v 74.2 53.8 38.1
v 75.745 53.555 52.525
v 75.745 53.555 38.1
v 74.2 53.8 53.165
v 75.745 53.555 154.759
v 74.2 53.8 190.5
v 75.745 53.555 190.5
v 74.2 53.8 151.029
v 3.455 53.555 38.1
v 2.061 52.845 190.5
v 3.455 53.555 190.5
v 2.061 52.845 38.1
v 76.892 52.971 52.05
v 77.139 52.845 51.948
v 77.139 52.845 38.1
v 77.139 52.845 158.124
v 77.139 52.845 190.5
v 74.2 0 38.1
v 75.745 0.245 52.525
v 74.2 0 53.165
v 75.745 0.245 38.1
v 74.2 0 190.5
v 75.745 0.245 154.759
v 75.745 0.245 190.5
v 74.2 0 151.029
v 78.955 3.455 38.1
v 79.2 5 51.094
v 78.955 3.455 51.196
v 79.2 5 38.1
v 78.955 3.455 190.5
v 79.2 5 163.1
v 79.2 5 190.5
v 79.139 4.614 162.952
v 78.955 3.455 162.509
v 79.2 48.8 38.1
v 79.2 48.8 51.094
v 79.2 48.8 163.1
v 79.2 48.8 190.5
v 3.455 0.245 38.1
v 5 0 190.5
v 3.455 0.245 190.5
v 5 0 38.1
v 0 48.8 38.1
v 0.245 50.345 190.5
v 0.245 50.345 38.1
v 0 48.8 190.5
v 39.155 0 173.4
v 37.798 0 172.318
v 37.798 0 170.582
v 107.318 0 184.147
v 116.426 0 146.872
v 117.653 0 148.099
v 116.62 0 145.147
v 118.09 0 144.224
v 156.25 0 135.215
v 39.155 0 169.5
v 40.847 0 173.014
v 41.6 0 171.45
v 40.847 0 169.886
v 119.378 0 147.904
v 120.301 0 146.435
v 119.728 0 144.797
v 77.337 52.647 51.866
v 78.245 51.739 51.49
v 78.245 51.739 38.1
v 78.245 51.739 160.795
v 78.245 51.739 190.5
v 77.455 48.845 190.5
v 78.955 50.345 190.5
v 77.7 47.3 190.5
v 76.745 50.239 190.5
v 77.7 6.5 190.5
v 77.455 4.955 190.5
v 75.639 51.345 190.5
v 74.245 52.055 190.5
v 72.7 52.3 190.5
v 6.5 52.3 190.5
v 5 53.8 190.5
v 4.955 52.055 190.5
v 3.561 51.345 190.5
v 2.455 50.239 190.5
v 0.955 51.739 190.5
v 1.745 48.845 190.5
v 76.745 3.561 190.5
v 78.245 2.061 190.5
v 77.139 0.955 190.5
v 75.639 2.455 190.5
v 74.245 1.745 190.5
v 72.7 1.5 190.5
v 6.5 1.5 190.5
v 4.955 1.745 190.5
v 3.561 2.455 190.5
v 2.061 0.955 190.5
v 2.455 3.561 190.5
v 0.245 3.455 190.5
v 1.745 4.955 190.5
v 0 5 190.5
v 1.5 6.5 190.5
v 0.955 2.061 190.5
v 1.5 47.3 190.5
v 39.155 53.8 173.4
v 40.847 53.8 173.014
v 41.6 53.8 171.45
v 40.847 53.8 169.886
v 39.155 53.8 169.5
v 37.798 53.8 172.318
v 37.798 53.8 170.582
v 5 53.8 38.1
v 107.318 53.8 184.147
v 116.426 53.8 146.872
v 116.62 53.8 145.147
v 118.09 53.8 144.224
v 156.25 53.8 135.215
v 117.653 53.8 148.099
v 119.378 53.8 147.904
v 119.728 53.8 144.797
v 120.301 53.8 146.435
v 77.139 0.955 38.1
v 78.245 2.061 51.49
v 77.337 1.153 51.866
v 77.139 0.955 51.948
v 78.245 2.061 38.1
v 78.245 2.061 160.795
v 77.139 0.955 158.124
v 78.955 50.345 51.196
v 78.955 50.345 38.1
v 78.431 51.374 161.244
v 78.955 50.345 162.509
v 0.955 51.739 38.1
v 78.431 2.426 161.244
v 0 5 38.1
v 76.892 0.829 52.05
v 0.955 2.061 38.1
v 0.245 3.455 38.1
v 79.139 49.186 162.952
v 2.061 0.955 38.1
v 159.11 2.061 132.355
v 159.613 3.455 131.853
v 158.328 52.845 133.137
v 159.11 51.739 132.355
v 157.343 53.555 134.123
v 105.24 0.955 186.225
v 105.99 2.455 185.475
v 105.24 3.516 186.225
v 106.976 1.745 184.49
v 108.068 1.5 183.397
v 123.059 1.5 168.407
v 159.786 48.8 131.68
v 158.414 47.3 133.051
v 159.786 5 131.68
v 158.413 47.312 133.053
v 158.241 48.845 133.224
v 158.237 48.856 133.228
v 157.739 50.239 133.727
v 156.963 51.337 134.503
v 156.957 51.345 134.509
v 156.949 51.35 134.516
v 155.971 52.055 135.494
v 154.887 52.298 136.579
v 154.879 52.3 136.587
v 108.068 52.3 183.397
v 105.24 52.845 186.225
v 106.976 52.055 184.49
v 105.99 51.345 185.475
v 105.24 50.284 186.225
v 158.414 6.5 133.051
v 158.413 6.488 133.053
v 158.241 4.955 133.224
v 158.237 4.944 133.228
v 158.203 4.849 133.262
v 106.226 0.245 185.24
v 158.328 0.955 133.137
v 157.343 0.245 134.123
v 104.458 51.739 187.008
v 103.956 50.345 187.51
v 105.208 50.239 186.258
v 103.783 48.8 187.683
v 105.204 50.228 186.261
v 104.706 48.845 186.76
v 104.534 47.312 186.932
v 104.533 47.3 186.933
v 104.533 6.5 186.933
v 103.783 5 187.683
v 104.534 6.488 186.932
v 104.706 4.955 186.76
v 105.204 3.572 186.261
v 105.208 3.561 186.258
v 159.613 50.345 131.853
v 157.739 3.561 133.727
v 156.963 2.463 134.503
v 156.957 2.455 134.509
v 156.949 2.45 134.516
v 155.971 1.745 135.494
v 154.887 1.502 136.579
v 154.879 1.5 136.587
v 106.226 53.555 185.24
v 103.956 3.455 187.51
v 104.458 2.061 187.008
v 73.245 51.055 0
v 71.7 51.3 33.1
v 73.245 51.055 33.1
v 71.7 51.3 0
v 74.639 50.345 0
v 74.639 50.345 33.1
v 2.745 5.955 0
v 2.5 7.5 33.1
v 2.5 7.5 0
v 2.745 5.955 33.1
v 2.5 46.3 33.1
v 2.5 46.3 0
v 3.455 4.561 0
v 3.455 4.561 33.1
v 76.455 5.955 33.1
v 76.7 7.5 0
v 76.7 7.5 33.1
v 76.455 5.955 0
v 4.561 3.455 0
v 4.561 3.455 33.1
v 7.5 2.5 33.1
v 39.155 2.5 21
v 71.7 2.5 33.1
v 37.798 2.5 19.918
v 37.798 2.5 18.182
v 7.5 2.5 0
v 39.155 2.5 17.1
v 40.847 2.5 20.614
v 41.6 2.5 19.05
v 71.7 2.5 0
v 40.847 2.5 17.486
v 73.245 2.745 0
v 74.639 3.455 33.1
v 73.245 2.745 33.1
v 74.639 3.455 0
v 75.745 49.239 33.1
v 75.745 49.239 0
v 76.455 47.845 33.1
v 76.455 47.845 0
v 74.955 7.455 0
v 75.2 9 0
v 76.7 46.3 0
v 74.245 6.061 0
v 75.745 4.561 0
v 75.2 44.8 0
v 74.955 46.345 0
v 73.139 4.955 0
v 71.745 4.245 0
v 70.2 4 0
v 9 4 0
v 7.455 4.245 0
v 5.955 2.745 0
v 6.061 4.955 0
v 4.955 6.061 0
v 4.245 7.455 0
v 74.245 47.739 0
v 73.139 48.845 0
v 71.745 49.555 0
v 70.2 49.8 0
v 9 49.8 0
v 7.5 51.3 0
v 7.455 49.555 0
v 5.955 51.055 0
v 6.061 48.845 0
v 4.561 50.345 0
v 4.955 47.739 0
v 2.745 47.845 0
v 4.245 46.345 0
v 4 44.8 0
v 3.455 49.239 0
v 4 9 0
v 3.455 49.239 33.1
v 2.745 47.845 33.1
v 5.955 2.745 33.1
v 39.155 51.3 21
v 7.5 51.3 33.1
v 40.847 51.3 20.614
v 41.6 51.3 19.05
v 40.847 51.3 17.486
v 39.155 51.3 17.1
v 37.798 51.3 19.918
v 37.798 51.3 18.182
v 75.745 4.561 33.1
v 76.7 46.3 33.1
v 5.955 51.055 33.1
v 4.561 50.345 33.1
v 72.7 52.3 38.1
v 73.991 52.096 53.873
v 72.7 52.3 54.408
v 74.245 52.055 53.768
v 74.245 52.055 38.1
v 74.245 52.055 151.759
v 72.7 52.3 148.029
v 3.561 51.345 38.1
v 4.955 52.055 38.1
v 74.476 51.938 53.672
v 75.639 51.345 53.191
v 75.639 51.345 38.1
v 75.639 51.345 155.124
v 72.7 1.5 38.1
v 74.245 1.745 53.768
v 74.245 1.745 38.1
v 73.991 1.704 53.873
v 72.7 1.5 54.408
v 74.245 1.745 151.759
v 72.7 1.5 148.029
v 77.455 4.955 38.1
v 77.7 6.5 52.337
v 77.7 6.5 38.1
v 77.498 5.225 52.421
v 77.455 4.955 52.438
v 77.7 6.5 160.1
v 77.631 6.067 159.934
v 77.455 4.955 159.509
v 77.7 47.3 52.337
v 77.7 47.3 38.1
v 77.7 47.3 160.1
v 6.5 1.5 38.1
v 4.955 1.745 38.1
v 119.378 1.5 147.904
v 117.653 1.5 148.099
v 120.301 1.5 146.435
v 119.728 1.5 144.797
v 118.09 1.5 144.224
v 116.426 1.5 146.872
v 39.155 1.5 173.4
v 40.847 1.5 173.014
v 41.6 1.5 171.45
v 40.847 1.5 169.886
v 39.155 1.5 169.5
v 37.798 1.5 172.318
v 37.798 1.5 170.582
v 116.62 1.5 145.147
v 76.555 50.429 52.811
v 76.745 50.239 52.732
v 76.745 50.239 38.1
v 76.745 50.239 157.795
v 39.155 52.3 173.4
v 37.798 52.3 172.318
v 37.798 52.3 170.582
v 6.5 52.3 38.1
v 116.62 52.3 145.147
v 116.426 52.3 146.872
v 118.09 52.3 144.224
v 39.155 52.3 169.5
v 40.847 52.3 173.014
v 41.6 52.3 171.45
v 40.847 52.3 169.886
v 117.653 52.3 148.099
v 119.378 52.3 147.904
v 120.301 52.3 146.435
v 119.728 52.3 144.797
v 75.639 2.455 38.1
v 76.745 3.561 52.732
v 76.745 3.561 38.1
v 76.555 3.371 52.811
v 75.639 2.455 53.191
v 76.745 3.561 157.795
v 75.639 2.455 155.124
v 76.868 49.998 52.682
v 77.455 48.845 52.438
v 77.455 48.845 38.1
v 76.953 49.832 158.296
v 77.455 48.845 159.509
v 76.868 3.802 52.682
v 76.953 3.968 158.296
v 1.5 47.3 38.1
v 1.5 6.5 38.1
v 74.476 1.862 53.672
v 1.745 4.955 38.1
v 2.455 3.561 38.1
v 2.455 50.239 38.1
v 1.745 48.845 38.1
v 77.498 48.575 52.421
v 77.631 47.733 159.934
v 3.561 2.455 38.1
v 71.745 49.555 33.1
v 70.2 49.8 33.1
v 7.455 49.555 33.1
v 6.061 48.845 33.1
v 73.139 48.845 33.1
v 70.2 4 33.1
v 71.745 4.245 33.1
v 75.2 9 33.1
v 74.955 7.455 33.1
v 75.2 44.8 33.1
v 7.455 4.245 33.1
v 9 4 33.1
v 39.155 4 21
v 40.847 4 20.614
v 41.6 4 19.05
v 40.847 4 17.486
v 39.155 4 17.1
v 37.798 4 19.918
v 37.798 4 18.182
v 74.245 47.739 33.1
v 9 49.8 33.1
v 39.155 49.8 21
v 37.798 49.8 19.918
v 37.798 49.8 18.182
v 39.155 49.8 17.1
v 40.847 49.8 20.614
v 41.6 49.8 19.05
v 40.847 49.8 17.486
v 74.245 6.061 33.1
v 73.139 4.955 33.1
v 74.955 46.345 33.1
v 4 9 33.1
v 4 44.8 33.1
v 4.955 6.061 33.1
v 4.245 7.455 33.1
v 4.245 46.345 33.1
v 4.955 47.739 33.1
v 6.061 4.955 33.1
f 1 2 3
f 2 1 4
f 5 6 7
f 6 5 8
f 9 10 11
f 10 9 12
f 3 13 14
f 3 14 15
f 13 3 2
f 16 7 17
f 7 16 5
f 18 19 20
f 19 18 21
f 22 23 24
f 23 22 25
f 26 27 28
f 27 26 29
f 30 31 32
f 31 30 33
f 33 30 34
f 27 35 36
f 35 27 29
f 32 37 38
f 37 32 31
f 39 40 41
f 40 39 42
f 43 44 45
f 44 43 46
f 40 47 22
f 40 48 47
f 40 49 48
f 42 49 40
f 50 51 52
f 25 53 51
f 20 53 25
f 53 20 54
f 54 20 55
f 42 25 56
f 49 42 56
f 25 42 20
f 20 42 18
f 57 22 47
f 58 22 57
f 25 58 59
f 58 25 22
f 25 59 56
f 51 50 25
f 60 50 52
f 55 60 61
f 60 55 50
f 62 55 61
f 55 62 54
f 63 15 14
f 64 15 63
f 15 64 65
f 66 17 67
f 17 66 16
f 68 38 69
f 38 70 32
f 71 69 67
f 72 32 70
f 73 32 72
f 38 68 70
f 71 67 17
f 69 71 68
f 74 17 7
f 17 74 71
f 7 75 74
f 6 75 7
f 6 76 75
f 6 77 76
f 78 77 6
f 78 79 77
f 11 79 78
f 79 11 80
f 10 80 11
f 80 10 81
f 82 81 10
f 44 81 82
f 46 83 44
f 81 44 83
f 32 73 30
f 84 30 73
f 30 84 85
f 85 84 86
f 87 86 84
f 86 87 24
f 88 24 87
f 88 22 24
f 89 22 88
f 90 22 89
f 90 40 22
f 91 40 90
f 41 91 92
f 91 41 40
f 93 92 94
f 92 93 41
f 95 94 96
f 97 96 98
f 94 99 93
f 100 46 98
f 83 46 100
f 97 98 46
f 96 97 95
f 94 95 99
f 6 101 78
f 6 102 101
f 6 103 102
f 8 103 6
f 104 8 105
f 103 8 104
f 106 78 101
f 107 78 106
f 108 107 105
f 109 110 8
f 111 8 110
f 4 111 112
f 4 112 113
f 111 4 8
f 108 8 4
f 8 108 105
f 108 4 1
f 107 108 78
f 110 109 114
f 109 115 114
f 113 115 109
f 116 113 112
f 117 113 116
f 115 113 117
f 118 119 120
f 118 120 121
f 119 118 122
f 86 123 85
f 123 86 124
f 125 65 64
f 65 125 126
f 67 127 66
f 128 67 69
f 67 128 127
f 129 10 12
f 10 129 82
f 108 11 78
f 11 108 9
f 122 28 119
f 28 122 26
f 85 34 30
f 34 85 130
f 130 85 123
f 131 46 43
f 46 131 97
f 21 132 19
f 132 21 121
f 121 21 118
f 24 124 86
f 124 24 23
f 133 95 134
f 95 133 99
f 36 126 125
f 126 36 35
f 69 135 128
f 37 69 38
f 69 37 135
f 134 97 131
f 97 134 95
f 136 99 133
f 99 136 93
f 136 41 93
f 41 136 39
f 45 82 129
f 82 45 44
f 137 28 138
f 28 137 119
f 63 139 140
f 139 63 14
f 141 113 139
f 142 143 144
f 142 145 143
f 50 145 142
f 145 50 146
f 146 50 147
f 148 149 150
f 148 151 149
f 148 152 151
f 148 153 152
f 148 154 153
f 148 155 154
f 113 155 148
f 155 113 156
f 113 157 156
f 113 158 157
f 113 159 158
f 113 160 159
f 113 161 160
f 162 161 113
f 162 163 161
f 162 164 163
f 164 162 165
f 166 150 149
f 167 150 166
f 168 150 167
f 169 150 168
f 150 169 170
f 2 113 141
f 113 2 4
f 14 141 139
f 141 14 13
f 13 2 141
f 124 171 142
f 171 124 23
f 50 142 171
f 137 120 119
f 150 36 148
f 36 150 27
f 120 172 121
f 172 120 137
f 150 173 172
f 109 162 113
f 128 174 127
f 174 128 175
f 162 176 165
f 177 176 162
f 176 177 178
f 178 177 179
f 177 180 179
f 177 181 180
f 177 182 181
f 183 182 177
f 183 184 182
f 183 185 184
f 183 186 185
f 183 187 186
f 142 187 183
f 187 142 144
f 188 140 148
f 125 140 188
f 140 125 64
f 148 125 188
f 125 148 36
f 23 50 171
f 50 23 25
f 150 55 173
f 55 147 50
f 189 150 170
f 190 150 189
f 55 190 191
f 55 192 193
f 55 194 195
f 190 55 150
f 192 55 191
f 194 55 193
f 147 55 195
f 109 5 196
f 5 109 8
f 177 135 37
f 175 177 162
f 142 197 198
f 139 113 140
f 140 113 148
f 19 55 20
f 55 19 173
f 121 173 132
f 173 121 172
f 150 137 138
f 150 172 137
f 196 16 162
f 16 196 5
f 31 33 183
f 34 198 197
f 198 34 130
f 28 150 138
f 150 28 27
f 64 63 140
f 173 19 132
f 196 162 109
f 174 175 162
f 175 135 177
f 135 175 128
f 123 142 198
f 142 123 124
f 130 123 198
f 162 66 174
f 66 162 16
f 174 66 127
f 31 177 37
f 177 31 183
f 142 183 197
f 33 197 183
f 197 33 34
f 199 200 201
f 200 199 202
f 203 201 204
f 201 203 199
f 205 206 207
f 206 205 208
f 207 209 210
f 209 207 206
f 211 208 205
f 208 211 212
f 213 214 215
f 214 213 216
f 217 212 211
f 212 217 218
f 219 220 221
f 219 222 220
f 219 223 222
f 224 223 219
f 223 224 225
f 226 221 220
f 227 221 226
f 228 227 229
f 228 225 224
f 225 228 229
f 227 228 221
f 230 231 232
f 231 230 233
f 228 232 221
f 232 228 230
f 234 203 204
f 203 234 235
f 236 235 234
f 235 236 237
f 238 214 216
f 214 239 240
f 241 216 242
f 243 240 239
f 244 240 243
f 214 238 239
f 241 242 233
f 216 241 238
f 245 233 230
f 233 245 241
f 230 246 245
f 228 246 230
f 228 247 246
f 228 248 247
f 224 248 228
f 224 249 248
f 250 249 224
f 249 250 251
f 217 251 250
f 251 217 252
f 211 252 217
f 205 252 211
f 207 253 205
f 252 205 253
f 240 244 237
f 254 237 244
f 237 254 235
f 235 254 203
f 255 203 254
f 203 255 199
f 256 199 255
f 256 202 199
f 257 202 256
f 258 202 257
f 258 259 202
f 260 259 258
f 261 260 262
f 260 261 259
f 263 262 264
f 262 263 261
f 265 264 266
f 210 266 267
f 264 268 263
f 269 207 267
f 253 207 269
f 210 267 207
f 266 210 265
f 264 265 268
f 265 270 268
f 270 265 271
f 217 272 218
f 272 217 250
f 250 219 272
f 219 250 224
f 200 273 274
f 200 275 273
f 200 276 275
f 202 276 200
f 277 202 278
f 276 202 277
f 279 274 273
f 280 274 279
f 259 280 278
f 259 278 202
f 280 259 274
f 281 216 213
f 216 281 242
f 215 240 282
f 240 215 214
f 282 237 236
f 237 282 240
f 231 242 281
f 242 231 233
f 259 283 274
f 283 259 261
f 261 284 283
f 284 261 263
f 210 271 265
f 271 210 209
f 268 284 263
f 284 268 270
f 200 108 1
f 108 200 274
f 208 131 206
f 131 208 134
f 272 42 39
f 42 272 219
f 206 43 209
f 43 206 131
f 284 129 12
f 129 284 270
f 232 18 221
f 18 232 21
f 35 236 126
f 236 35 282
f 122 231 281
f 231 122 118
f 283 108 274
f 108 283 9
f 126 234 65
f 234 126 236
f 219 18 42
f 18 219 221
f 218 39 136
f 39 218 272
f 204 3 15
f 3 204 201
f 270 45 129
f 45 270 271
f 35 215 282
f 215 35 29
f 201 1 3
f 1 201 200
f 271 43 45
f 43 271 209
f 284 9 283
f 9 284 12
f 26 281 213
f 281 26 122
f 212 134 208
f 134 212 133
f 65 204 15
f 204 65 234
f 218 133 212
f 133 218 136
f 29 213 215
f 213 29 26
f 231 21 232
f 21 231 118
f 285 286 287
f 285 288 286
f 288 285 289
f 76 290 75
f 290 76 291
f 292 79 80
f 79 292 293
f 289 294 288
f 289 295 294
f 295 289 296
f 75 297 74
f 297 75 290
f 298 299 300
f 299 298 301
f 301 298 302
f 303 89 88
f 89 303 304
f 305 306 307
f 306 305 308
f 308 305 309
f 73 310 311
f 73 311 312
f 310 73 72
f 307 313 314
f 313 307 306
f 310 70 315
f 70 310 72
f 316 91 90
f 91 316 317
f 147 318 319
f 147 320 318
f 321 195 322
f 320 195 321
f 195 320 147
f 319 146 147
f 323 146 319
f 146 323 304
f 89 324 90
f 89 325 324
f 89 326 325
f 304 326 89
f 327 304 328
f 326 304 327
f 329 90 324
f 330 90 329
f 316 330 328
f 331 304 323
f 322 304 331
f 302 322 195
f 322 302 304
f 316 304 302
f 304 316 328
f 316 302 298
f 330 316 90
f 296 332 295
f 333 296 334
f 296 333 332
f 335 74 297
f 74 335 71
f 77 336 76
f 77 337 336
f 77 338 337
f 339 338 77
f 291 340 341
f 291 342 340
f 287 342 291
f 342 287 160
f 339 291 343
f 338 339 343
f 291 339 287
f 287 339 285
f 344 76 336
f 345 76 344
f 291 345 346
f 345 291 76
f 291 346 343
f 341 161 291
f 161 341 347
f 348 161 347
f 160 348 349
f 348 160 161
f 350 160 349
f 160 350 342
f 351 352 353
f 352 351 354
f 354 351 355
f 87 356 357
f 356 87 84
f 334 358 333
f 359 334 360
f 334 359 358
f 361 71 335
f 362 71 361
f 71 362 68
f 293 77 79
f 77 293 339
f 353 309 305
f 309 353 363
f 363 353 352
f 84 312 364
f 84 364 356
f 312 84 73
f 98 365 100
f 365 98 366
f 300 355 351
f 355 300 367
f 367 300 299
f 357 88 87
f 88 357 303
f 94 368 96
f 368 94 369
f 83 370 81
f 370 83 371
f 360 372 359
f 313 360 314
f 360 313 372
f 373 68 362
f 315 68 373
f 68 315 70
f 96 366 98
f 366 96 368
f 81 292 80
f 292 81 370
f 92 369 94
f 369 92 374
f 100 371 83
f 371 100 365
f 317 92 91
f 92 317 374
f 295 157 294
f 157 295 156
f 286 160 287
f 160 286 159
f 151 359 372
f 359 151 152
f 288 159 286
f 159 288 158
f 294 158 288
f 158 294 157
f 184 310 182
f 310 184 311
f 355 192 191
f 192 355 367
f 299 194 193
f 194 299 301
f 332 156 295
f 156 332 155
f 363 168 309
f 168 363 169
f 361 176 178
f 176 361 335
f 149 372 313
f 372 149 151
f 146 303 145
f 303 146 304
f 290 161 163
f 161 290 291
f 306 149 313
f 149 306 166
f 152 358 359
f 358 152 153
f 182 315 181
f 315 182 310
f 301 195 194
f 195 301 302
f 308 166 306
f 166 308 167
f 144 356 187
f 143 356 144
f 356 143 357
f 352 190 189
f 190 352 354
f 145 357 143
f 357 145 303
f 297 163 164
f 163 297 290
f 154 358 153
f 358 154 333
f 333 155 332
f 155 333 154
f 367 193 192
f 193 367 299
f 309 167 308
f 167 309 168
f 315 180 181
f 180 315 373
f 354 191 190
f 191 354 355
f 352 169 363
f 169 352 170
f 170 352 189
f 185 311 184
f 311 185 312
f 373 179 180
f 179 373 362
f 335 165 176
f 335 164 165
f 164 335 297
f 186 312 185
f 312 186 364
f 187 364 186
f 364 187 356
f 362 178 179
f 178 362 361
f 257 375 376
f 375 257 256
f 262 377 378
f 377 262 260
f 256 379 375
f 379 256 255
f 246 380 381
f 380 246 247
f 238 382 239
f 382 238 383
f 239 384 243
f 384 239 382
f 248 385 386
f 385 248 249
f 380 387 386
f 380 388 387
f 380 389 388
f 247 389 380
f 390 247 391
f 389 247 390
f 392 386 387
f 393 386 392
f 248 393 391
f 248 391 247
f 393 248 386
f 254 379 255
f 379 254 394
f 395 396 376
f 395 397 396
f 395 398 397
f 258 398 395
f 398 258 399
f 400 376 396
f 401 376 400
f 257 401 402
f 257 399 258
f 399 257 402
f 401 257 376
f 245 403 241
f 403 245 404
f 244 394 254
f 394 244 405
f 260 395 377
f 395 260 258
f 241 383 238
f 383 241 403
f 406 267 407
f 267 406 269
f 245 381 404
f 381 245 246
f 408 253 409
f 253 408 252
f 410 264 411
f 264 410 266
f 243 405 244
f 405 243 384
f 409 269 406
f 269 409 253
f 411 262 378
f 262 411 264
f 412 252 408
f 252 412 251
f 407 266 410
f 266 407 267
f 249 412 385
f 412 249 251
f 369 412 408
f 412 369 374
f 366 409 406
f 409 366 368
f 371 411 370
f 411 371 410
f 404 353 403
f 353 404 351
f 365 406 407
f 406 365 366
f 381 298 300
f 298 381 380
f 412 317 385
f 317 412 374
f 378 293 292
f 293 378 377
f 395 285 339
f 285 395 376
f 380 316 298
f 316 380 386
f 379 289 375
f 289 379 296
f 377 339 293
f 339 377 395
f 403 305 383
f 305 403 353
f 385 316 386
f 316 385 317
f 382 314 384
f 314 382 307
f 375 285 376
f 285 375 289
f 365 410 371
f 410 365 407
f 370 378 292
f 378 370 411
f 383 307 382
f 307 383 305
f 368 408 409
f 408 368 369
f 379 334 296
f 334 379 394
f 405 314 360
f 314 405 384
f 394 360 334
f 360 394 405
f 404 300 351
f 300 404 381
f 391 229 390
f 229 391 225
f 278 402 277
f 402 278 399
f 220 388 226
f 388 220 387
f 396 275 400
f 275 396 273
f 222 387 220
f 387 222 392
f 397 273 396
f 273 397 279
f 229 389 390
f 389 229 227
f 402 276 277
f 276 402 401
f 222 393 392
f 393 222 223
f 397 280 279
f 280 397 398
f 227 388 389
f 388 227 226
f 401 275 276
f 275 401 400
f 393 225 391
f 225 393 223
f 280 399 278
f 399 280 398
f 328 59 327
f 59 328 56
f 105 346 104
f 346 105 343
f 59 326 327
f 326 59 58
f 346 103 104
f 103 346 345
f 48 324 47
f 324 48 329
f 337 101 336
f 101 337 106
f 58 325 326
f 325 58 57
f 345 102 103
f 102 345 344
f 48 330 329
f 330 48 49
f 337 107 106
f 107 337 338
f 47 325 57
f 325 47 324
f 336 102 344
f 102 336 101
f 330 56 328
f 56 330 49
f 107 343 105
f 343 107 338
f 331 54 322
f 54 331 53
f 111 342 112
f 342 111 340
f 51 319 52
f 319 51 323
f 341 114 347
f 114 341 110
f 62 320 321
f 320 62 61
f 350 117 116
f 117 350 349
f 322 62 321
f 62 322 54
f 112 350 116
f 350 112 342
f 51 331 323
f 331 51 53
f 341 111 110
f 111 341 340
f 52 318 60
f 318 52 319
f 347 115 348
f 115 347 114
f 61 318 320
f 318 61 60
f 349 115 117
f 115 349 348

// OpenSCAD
// file: ../lib/utils.scad
module cone(r, angle, invert=false) {
    h = tan((180 - angle) / 2) * r;
    translate([0, 0, -h]) {
        if (invert) {
                cylinder(r1=r,r2=0,h=h, $fn=20); 
        } else {
            cylinder(r1=0,r2=r,h=h, $fn=20); 
        }
    }
}

module roundrect(vect, r, $fn=20) {
    sq = len(vect) > 1
        ? [for (i = [0:1:len(vect)-1]) vect[i] - r * 2]
        : vect - r * 2;
    minkowski() {
        square(sq);
        translate([r, r])
            circle(r=r);
    }
}

module screw(r, d, l, head, head_d, cap, angle, $fn=20) {
    radius = r > 0 ? r : d / 2;
    head_r = head > 0 ? head : head_d / 2;

    union() {
        if (angle) {
            translate([0, 0, l])
                cone(head_r, angle, false);
        }
        linear_extrude(l)
            circle(r=radius);
        if (cap > 0) {
            translate([0, 0, l - cap])
                linear_extrude(cap)
                    circle(r=head_r);
        }
    }
}

module inset_screw(r, d, l, head, head_d, cap, angle, inset, $fn=20) {
    screw_height = l - inset;
    head_r = head > 0 ? head : head_d / 2;

    union() {
        screw(
            r=r,
            d=d,
            l=screw_height,
            head=head_r,
            cap=cap,
            angle=angle,
            $fn=$fn
        );
        translate([0, 0, screw_height])
            linear_extrude(inset)
                circle(r=head_r);
    }
}

function inch_to_mm(inches) = inches * 25.4;
function increase(vec, amt) = [for (i = vec) i + amt];
// main file
// Gutter Downspout "T" Junction
// by Nathan Wittstock <nate@fardog.io>

// preview[view: south east, tilt: top diagonal]

use <../lib/utils.scad>;

downspout_w = inch_to_mm(3);
downspout_h = inch_to_mm(2);
downspout_t = 1.5;
downspout_r = 5;

insert_d = inch_to_mm(3.5);
insert_allowance = 5;
outer_d = inch_to_mm(2.5);
thickness = 3;

screw_d = 4;
screw_offset = inch_to_mm(0.75);

/* [Hidden] */
downspout_vec = [downspout_w, downspout_h];
screw_l = downspout_h + thickness; 
total_height = insert_d + outer_d + downspout_w/2;

module adapt_allowance(vec) {
    hull() {
        translate([insert_allowance/2, insert_allowance/2, 0])
            linear_extrude(1) roundrect(increase(vec, -insert_allowance), downspout_r);
        translate([0, 0, 5]) linear_extrude(1) roundrect(vec, downspout_r);
    }
}

module inner(vec) {
    union() {
        difference() {
            union() {
                linear_extrude(total_height)
                    roundrect(vec, downspout_r);
                translate([downspout_r, 0, insert_d])
                    rotate([0, 45, 0])
                        linear_extrude(downspout_w + outer_d)
                            roundrect(vec, downspout_r);
            }
            linear_extrude(screw_offset*2)
                roundrect(vec, downspout_r);
        }
        linear_extrude(screw_offset*2-insert_allowance)
            translate([insert_allowance/2, insert_allowance/2, 0])
            roundrect(increase(vec, -insert_allowance), downspout_r);
        translate([0, 0, screw_offset*2-insert_allowance])
            adapt_allowance(vec);
    }
}

module screw_through() {
    rotate([-90, 0, 0])
        linear_extrude(screw_l) circle(d=screw_d, center=true);
}

module screws() {
    x = (downspout_w + thickness) / 2;
    translate([x, 0, screw_offset])
        screw_through();
    translate([x, 0, total_height - screw_offset])
        screw_through();
    translate([downspout_r, 0, insert_d])
        rotate([0, 45, 0])
            translate([x, 0, downspout_w + outer_d - screw_offset])
                screw_through();
}

difference() {
    inner(increase(downspout_vec, thickness));
    translate([thickness/2, thickness/2]) inner(downspout_vec);
    screws();
}
